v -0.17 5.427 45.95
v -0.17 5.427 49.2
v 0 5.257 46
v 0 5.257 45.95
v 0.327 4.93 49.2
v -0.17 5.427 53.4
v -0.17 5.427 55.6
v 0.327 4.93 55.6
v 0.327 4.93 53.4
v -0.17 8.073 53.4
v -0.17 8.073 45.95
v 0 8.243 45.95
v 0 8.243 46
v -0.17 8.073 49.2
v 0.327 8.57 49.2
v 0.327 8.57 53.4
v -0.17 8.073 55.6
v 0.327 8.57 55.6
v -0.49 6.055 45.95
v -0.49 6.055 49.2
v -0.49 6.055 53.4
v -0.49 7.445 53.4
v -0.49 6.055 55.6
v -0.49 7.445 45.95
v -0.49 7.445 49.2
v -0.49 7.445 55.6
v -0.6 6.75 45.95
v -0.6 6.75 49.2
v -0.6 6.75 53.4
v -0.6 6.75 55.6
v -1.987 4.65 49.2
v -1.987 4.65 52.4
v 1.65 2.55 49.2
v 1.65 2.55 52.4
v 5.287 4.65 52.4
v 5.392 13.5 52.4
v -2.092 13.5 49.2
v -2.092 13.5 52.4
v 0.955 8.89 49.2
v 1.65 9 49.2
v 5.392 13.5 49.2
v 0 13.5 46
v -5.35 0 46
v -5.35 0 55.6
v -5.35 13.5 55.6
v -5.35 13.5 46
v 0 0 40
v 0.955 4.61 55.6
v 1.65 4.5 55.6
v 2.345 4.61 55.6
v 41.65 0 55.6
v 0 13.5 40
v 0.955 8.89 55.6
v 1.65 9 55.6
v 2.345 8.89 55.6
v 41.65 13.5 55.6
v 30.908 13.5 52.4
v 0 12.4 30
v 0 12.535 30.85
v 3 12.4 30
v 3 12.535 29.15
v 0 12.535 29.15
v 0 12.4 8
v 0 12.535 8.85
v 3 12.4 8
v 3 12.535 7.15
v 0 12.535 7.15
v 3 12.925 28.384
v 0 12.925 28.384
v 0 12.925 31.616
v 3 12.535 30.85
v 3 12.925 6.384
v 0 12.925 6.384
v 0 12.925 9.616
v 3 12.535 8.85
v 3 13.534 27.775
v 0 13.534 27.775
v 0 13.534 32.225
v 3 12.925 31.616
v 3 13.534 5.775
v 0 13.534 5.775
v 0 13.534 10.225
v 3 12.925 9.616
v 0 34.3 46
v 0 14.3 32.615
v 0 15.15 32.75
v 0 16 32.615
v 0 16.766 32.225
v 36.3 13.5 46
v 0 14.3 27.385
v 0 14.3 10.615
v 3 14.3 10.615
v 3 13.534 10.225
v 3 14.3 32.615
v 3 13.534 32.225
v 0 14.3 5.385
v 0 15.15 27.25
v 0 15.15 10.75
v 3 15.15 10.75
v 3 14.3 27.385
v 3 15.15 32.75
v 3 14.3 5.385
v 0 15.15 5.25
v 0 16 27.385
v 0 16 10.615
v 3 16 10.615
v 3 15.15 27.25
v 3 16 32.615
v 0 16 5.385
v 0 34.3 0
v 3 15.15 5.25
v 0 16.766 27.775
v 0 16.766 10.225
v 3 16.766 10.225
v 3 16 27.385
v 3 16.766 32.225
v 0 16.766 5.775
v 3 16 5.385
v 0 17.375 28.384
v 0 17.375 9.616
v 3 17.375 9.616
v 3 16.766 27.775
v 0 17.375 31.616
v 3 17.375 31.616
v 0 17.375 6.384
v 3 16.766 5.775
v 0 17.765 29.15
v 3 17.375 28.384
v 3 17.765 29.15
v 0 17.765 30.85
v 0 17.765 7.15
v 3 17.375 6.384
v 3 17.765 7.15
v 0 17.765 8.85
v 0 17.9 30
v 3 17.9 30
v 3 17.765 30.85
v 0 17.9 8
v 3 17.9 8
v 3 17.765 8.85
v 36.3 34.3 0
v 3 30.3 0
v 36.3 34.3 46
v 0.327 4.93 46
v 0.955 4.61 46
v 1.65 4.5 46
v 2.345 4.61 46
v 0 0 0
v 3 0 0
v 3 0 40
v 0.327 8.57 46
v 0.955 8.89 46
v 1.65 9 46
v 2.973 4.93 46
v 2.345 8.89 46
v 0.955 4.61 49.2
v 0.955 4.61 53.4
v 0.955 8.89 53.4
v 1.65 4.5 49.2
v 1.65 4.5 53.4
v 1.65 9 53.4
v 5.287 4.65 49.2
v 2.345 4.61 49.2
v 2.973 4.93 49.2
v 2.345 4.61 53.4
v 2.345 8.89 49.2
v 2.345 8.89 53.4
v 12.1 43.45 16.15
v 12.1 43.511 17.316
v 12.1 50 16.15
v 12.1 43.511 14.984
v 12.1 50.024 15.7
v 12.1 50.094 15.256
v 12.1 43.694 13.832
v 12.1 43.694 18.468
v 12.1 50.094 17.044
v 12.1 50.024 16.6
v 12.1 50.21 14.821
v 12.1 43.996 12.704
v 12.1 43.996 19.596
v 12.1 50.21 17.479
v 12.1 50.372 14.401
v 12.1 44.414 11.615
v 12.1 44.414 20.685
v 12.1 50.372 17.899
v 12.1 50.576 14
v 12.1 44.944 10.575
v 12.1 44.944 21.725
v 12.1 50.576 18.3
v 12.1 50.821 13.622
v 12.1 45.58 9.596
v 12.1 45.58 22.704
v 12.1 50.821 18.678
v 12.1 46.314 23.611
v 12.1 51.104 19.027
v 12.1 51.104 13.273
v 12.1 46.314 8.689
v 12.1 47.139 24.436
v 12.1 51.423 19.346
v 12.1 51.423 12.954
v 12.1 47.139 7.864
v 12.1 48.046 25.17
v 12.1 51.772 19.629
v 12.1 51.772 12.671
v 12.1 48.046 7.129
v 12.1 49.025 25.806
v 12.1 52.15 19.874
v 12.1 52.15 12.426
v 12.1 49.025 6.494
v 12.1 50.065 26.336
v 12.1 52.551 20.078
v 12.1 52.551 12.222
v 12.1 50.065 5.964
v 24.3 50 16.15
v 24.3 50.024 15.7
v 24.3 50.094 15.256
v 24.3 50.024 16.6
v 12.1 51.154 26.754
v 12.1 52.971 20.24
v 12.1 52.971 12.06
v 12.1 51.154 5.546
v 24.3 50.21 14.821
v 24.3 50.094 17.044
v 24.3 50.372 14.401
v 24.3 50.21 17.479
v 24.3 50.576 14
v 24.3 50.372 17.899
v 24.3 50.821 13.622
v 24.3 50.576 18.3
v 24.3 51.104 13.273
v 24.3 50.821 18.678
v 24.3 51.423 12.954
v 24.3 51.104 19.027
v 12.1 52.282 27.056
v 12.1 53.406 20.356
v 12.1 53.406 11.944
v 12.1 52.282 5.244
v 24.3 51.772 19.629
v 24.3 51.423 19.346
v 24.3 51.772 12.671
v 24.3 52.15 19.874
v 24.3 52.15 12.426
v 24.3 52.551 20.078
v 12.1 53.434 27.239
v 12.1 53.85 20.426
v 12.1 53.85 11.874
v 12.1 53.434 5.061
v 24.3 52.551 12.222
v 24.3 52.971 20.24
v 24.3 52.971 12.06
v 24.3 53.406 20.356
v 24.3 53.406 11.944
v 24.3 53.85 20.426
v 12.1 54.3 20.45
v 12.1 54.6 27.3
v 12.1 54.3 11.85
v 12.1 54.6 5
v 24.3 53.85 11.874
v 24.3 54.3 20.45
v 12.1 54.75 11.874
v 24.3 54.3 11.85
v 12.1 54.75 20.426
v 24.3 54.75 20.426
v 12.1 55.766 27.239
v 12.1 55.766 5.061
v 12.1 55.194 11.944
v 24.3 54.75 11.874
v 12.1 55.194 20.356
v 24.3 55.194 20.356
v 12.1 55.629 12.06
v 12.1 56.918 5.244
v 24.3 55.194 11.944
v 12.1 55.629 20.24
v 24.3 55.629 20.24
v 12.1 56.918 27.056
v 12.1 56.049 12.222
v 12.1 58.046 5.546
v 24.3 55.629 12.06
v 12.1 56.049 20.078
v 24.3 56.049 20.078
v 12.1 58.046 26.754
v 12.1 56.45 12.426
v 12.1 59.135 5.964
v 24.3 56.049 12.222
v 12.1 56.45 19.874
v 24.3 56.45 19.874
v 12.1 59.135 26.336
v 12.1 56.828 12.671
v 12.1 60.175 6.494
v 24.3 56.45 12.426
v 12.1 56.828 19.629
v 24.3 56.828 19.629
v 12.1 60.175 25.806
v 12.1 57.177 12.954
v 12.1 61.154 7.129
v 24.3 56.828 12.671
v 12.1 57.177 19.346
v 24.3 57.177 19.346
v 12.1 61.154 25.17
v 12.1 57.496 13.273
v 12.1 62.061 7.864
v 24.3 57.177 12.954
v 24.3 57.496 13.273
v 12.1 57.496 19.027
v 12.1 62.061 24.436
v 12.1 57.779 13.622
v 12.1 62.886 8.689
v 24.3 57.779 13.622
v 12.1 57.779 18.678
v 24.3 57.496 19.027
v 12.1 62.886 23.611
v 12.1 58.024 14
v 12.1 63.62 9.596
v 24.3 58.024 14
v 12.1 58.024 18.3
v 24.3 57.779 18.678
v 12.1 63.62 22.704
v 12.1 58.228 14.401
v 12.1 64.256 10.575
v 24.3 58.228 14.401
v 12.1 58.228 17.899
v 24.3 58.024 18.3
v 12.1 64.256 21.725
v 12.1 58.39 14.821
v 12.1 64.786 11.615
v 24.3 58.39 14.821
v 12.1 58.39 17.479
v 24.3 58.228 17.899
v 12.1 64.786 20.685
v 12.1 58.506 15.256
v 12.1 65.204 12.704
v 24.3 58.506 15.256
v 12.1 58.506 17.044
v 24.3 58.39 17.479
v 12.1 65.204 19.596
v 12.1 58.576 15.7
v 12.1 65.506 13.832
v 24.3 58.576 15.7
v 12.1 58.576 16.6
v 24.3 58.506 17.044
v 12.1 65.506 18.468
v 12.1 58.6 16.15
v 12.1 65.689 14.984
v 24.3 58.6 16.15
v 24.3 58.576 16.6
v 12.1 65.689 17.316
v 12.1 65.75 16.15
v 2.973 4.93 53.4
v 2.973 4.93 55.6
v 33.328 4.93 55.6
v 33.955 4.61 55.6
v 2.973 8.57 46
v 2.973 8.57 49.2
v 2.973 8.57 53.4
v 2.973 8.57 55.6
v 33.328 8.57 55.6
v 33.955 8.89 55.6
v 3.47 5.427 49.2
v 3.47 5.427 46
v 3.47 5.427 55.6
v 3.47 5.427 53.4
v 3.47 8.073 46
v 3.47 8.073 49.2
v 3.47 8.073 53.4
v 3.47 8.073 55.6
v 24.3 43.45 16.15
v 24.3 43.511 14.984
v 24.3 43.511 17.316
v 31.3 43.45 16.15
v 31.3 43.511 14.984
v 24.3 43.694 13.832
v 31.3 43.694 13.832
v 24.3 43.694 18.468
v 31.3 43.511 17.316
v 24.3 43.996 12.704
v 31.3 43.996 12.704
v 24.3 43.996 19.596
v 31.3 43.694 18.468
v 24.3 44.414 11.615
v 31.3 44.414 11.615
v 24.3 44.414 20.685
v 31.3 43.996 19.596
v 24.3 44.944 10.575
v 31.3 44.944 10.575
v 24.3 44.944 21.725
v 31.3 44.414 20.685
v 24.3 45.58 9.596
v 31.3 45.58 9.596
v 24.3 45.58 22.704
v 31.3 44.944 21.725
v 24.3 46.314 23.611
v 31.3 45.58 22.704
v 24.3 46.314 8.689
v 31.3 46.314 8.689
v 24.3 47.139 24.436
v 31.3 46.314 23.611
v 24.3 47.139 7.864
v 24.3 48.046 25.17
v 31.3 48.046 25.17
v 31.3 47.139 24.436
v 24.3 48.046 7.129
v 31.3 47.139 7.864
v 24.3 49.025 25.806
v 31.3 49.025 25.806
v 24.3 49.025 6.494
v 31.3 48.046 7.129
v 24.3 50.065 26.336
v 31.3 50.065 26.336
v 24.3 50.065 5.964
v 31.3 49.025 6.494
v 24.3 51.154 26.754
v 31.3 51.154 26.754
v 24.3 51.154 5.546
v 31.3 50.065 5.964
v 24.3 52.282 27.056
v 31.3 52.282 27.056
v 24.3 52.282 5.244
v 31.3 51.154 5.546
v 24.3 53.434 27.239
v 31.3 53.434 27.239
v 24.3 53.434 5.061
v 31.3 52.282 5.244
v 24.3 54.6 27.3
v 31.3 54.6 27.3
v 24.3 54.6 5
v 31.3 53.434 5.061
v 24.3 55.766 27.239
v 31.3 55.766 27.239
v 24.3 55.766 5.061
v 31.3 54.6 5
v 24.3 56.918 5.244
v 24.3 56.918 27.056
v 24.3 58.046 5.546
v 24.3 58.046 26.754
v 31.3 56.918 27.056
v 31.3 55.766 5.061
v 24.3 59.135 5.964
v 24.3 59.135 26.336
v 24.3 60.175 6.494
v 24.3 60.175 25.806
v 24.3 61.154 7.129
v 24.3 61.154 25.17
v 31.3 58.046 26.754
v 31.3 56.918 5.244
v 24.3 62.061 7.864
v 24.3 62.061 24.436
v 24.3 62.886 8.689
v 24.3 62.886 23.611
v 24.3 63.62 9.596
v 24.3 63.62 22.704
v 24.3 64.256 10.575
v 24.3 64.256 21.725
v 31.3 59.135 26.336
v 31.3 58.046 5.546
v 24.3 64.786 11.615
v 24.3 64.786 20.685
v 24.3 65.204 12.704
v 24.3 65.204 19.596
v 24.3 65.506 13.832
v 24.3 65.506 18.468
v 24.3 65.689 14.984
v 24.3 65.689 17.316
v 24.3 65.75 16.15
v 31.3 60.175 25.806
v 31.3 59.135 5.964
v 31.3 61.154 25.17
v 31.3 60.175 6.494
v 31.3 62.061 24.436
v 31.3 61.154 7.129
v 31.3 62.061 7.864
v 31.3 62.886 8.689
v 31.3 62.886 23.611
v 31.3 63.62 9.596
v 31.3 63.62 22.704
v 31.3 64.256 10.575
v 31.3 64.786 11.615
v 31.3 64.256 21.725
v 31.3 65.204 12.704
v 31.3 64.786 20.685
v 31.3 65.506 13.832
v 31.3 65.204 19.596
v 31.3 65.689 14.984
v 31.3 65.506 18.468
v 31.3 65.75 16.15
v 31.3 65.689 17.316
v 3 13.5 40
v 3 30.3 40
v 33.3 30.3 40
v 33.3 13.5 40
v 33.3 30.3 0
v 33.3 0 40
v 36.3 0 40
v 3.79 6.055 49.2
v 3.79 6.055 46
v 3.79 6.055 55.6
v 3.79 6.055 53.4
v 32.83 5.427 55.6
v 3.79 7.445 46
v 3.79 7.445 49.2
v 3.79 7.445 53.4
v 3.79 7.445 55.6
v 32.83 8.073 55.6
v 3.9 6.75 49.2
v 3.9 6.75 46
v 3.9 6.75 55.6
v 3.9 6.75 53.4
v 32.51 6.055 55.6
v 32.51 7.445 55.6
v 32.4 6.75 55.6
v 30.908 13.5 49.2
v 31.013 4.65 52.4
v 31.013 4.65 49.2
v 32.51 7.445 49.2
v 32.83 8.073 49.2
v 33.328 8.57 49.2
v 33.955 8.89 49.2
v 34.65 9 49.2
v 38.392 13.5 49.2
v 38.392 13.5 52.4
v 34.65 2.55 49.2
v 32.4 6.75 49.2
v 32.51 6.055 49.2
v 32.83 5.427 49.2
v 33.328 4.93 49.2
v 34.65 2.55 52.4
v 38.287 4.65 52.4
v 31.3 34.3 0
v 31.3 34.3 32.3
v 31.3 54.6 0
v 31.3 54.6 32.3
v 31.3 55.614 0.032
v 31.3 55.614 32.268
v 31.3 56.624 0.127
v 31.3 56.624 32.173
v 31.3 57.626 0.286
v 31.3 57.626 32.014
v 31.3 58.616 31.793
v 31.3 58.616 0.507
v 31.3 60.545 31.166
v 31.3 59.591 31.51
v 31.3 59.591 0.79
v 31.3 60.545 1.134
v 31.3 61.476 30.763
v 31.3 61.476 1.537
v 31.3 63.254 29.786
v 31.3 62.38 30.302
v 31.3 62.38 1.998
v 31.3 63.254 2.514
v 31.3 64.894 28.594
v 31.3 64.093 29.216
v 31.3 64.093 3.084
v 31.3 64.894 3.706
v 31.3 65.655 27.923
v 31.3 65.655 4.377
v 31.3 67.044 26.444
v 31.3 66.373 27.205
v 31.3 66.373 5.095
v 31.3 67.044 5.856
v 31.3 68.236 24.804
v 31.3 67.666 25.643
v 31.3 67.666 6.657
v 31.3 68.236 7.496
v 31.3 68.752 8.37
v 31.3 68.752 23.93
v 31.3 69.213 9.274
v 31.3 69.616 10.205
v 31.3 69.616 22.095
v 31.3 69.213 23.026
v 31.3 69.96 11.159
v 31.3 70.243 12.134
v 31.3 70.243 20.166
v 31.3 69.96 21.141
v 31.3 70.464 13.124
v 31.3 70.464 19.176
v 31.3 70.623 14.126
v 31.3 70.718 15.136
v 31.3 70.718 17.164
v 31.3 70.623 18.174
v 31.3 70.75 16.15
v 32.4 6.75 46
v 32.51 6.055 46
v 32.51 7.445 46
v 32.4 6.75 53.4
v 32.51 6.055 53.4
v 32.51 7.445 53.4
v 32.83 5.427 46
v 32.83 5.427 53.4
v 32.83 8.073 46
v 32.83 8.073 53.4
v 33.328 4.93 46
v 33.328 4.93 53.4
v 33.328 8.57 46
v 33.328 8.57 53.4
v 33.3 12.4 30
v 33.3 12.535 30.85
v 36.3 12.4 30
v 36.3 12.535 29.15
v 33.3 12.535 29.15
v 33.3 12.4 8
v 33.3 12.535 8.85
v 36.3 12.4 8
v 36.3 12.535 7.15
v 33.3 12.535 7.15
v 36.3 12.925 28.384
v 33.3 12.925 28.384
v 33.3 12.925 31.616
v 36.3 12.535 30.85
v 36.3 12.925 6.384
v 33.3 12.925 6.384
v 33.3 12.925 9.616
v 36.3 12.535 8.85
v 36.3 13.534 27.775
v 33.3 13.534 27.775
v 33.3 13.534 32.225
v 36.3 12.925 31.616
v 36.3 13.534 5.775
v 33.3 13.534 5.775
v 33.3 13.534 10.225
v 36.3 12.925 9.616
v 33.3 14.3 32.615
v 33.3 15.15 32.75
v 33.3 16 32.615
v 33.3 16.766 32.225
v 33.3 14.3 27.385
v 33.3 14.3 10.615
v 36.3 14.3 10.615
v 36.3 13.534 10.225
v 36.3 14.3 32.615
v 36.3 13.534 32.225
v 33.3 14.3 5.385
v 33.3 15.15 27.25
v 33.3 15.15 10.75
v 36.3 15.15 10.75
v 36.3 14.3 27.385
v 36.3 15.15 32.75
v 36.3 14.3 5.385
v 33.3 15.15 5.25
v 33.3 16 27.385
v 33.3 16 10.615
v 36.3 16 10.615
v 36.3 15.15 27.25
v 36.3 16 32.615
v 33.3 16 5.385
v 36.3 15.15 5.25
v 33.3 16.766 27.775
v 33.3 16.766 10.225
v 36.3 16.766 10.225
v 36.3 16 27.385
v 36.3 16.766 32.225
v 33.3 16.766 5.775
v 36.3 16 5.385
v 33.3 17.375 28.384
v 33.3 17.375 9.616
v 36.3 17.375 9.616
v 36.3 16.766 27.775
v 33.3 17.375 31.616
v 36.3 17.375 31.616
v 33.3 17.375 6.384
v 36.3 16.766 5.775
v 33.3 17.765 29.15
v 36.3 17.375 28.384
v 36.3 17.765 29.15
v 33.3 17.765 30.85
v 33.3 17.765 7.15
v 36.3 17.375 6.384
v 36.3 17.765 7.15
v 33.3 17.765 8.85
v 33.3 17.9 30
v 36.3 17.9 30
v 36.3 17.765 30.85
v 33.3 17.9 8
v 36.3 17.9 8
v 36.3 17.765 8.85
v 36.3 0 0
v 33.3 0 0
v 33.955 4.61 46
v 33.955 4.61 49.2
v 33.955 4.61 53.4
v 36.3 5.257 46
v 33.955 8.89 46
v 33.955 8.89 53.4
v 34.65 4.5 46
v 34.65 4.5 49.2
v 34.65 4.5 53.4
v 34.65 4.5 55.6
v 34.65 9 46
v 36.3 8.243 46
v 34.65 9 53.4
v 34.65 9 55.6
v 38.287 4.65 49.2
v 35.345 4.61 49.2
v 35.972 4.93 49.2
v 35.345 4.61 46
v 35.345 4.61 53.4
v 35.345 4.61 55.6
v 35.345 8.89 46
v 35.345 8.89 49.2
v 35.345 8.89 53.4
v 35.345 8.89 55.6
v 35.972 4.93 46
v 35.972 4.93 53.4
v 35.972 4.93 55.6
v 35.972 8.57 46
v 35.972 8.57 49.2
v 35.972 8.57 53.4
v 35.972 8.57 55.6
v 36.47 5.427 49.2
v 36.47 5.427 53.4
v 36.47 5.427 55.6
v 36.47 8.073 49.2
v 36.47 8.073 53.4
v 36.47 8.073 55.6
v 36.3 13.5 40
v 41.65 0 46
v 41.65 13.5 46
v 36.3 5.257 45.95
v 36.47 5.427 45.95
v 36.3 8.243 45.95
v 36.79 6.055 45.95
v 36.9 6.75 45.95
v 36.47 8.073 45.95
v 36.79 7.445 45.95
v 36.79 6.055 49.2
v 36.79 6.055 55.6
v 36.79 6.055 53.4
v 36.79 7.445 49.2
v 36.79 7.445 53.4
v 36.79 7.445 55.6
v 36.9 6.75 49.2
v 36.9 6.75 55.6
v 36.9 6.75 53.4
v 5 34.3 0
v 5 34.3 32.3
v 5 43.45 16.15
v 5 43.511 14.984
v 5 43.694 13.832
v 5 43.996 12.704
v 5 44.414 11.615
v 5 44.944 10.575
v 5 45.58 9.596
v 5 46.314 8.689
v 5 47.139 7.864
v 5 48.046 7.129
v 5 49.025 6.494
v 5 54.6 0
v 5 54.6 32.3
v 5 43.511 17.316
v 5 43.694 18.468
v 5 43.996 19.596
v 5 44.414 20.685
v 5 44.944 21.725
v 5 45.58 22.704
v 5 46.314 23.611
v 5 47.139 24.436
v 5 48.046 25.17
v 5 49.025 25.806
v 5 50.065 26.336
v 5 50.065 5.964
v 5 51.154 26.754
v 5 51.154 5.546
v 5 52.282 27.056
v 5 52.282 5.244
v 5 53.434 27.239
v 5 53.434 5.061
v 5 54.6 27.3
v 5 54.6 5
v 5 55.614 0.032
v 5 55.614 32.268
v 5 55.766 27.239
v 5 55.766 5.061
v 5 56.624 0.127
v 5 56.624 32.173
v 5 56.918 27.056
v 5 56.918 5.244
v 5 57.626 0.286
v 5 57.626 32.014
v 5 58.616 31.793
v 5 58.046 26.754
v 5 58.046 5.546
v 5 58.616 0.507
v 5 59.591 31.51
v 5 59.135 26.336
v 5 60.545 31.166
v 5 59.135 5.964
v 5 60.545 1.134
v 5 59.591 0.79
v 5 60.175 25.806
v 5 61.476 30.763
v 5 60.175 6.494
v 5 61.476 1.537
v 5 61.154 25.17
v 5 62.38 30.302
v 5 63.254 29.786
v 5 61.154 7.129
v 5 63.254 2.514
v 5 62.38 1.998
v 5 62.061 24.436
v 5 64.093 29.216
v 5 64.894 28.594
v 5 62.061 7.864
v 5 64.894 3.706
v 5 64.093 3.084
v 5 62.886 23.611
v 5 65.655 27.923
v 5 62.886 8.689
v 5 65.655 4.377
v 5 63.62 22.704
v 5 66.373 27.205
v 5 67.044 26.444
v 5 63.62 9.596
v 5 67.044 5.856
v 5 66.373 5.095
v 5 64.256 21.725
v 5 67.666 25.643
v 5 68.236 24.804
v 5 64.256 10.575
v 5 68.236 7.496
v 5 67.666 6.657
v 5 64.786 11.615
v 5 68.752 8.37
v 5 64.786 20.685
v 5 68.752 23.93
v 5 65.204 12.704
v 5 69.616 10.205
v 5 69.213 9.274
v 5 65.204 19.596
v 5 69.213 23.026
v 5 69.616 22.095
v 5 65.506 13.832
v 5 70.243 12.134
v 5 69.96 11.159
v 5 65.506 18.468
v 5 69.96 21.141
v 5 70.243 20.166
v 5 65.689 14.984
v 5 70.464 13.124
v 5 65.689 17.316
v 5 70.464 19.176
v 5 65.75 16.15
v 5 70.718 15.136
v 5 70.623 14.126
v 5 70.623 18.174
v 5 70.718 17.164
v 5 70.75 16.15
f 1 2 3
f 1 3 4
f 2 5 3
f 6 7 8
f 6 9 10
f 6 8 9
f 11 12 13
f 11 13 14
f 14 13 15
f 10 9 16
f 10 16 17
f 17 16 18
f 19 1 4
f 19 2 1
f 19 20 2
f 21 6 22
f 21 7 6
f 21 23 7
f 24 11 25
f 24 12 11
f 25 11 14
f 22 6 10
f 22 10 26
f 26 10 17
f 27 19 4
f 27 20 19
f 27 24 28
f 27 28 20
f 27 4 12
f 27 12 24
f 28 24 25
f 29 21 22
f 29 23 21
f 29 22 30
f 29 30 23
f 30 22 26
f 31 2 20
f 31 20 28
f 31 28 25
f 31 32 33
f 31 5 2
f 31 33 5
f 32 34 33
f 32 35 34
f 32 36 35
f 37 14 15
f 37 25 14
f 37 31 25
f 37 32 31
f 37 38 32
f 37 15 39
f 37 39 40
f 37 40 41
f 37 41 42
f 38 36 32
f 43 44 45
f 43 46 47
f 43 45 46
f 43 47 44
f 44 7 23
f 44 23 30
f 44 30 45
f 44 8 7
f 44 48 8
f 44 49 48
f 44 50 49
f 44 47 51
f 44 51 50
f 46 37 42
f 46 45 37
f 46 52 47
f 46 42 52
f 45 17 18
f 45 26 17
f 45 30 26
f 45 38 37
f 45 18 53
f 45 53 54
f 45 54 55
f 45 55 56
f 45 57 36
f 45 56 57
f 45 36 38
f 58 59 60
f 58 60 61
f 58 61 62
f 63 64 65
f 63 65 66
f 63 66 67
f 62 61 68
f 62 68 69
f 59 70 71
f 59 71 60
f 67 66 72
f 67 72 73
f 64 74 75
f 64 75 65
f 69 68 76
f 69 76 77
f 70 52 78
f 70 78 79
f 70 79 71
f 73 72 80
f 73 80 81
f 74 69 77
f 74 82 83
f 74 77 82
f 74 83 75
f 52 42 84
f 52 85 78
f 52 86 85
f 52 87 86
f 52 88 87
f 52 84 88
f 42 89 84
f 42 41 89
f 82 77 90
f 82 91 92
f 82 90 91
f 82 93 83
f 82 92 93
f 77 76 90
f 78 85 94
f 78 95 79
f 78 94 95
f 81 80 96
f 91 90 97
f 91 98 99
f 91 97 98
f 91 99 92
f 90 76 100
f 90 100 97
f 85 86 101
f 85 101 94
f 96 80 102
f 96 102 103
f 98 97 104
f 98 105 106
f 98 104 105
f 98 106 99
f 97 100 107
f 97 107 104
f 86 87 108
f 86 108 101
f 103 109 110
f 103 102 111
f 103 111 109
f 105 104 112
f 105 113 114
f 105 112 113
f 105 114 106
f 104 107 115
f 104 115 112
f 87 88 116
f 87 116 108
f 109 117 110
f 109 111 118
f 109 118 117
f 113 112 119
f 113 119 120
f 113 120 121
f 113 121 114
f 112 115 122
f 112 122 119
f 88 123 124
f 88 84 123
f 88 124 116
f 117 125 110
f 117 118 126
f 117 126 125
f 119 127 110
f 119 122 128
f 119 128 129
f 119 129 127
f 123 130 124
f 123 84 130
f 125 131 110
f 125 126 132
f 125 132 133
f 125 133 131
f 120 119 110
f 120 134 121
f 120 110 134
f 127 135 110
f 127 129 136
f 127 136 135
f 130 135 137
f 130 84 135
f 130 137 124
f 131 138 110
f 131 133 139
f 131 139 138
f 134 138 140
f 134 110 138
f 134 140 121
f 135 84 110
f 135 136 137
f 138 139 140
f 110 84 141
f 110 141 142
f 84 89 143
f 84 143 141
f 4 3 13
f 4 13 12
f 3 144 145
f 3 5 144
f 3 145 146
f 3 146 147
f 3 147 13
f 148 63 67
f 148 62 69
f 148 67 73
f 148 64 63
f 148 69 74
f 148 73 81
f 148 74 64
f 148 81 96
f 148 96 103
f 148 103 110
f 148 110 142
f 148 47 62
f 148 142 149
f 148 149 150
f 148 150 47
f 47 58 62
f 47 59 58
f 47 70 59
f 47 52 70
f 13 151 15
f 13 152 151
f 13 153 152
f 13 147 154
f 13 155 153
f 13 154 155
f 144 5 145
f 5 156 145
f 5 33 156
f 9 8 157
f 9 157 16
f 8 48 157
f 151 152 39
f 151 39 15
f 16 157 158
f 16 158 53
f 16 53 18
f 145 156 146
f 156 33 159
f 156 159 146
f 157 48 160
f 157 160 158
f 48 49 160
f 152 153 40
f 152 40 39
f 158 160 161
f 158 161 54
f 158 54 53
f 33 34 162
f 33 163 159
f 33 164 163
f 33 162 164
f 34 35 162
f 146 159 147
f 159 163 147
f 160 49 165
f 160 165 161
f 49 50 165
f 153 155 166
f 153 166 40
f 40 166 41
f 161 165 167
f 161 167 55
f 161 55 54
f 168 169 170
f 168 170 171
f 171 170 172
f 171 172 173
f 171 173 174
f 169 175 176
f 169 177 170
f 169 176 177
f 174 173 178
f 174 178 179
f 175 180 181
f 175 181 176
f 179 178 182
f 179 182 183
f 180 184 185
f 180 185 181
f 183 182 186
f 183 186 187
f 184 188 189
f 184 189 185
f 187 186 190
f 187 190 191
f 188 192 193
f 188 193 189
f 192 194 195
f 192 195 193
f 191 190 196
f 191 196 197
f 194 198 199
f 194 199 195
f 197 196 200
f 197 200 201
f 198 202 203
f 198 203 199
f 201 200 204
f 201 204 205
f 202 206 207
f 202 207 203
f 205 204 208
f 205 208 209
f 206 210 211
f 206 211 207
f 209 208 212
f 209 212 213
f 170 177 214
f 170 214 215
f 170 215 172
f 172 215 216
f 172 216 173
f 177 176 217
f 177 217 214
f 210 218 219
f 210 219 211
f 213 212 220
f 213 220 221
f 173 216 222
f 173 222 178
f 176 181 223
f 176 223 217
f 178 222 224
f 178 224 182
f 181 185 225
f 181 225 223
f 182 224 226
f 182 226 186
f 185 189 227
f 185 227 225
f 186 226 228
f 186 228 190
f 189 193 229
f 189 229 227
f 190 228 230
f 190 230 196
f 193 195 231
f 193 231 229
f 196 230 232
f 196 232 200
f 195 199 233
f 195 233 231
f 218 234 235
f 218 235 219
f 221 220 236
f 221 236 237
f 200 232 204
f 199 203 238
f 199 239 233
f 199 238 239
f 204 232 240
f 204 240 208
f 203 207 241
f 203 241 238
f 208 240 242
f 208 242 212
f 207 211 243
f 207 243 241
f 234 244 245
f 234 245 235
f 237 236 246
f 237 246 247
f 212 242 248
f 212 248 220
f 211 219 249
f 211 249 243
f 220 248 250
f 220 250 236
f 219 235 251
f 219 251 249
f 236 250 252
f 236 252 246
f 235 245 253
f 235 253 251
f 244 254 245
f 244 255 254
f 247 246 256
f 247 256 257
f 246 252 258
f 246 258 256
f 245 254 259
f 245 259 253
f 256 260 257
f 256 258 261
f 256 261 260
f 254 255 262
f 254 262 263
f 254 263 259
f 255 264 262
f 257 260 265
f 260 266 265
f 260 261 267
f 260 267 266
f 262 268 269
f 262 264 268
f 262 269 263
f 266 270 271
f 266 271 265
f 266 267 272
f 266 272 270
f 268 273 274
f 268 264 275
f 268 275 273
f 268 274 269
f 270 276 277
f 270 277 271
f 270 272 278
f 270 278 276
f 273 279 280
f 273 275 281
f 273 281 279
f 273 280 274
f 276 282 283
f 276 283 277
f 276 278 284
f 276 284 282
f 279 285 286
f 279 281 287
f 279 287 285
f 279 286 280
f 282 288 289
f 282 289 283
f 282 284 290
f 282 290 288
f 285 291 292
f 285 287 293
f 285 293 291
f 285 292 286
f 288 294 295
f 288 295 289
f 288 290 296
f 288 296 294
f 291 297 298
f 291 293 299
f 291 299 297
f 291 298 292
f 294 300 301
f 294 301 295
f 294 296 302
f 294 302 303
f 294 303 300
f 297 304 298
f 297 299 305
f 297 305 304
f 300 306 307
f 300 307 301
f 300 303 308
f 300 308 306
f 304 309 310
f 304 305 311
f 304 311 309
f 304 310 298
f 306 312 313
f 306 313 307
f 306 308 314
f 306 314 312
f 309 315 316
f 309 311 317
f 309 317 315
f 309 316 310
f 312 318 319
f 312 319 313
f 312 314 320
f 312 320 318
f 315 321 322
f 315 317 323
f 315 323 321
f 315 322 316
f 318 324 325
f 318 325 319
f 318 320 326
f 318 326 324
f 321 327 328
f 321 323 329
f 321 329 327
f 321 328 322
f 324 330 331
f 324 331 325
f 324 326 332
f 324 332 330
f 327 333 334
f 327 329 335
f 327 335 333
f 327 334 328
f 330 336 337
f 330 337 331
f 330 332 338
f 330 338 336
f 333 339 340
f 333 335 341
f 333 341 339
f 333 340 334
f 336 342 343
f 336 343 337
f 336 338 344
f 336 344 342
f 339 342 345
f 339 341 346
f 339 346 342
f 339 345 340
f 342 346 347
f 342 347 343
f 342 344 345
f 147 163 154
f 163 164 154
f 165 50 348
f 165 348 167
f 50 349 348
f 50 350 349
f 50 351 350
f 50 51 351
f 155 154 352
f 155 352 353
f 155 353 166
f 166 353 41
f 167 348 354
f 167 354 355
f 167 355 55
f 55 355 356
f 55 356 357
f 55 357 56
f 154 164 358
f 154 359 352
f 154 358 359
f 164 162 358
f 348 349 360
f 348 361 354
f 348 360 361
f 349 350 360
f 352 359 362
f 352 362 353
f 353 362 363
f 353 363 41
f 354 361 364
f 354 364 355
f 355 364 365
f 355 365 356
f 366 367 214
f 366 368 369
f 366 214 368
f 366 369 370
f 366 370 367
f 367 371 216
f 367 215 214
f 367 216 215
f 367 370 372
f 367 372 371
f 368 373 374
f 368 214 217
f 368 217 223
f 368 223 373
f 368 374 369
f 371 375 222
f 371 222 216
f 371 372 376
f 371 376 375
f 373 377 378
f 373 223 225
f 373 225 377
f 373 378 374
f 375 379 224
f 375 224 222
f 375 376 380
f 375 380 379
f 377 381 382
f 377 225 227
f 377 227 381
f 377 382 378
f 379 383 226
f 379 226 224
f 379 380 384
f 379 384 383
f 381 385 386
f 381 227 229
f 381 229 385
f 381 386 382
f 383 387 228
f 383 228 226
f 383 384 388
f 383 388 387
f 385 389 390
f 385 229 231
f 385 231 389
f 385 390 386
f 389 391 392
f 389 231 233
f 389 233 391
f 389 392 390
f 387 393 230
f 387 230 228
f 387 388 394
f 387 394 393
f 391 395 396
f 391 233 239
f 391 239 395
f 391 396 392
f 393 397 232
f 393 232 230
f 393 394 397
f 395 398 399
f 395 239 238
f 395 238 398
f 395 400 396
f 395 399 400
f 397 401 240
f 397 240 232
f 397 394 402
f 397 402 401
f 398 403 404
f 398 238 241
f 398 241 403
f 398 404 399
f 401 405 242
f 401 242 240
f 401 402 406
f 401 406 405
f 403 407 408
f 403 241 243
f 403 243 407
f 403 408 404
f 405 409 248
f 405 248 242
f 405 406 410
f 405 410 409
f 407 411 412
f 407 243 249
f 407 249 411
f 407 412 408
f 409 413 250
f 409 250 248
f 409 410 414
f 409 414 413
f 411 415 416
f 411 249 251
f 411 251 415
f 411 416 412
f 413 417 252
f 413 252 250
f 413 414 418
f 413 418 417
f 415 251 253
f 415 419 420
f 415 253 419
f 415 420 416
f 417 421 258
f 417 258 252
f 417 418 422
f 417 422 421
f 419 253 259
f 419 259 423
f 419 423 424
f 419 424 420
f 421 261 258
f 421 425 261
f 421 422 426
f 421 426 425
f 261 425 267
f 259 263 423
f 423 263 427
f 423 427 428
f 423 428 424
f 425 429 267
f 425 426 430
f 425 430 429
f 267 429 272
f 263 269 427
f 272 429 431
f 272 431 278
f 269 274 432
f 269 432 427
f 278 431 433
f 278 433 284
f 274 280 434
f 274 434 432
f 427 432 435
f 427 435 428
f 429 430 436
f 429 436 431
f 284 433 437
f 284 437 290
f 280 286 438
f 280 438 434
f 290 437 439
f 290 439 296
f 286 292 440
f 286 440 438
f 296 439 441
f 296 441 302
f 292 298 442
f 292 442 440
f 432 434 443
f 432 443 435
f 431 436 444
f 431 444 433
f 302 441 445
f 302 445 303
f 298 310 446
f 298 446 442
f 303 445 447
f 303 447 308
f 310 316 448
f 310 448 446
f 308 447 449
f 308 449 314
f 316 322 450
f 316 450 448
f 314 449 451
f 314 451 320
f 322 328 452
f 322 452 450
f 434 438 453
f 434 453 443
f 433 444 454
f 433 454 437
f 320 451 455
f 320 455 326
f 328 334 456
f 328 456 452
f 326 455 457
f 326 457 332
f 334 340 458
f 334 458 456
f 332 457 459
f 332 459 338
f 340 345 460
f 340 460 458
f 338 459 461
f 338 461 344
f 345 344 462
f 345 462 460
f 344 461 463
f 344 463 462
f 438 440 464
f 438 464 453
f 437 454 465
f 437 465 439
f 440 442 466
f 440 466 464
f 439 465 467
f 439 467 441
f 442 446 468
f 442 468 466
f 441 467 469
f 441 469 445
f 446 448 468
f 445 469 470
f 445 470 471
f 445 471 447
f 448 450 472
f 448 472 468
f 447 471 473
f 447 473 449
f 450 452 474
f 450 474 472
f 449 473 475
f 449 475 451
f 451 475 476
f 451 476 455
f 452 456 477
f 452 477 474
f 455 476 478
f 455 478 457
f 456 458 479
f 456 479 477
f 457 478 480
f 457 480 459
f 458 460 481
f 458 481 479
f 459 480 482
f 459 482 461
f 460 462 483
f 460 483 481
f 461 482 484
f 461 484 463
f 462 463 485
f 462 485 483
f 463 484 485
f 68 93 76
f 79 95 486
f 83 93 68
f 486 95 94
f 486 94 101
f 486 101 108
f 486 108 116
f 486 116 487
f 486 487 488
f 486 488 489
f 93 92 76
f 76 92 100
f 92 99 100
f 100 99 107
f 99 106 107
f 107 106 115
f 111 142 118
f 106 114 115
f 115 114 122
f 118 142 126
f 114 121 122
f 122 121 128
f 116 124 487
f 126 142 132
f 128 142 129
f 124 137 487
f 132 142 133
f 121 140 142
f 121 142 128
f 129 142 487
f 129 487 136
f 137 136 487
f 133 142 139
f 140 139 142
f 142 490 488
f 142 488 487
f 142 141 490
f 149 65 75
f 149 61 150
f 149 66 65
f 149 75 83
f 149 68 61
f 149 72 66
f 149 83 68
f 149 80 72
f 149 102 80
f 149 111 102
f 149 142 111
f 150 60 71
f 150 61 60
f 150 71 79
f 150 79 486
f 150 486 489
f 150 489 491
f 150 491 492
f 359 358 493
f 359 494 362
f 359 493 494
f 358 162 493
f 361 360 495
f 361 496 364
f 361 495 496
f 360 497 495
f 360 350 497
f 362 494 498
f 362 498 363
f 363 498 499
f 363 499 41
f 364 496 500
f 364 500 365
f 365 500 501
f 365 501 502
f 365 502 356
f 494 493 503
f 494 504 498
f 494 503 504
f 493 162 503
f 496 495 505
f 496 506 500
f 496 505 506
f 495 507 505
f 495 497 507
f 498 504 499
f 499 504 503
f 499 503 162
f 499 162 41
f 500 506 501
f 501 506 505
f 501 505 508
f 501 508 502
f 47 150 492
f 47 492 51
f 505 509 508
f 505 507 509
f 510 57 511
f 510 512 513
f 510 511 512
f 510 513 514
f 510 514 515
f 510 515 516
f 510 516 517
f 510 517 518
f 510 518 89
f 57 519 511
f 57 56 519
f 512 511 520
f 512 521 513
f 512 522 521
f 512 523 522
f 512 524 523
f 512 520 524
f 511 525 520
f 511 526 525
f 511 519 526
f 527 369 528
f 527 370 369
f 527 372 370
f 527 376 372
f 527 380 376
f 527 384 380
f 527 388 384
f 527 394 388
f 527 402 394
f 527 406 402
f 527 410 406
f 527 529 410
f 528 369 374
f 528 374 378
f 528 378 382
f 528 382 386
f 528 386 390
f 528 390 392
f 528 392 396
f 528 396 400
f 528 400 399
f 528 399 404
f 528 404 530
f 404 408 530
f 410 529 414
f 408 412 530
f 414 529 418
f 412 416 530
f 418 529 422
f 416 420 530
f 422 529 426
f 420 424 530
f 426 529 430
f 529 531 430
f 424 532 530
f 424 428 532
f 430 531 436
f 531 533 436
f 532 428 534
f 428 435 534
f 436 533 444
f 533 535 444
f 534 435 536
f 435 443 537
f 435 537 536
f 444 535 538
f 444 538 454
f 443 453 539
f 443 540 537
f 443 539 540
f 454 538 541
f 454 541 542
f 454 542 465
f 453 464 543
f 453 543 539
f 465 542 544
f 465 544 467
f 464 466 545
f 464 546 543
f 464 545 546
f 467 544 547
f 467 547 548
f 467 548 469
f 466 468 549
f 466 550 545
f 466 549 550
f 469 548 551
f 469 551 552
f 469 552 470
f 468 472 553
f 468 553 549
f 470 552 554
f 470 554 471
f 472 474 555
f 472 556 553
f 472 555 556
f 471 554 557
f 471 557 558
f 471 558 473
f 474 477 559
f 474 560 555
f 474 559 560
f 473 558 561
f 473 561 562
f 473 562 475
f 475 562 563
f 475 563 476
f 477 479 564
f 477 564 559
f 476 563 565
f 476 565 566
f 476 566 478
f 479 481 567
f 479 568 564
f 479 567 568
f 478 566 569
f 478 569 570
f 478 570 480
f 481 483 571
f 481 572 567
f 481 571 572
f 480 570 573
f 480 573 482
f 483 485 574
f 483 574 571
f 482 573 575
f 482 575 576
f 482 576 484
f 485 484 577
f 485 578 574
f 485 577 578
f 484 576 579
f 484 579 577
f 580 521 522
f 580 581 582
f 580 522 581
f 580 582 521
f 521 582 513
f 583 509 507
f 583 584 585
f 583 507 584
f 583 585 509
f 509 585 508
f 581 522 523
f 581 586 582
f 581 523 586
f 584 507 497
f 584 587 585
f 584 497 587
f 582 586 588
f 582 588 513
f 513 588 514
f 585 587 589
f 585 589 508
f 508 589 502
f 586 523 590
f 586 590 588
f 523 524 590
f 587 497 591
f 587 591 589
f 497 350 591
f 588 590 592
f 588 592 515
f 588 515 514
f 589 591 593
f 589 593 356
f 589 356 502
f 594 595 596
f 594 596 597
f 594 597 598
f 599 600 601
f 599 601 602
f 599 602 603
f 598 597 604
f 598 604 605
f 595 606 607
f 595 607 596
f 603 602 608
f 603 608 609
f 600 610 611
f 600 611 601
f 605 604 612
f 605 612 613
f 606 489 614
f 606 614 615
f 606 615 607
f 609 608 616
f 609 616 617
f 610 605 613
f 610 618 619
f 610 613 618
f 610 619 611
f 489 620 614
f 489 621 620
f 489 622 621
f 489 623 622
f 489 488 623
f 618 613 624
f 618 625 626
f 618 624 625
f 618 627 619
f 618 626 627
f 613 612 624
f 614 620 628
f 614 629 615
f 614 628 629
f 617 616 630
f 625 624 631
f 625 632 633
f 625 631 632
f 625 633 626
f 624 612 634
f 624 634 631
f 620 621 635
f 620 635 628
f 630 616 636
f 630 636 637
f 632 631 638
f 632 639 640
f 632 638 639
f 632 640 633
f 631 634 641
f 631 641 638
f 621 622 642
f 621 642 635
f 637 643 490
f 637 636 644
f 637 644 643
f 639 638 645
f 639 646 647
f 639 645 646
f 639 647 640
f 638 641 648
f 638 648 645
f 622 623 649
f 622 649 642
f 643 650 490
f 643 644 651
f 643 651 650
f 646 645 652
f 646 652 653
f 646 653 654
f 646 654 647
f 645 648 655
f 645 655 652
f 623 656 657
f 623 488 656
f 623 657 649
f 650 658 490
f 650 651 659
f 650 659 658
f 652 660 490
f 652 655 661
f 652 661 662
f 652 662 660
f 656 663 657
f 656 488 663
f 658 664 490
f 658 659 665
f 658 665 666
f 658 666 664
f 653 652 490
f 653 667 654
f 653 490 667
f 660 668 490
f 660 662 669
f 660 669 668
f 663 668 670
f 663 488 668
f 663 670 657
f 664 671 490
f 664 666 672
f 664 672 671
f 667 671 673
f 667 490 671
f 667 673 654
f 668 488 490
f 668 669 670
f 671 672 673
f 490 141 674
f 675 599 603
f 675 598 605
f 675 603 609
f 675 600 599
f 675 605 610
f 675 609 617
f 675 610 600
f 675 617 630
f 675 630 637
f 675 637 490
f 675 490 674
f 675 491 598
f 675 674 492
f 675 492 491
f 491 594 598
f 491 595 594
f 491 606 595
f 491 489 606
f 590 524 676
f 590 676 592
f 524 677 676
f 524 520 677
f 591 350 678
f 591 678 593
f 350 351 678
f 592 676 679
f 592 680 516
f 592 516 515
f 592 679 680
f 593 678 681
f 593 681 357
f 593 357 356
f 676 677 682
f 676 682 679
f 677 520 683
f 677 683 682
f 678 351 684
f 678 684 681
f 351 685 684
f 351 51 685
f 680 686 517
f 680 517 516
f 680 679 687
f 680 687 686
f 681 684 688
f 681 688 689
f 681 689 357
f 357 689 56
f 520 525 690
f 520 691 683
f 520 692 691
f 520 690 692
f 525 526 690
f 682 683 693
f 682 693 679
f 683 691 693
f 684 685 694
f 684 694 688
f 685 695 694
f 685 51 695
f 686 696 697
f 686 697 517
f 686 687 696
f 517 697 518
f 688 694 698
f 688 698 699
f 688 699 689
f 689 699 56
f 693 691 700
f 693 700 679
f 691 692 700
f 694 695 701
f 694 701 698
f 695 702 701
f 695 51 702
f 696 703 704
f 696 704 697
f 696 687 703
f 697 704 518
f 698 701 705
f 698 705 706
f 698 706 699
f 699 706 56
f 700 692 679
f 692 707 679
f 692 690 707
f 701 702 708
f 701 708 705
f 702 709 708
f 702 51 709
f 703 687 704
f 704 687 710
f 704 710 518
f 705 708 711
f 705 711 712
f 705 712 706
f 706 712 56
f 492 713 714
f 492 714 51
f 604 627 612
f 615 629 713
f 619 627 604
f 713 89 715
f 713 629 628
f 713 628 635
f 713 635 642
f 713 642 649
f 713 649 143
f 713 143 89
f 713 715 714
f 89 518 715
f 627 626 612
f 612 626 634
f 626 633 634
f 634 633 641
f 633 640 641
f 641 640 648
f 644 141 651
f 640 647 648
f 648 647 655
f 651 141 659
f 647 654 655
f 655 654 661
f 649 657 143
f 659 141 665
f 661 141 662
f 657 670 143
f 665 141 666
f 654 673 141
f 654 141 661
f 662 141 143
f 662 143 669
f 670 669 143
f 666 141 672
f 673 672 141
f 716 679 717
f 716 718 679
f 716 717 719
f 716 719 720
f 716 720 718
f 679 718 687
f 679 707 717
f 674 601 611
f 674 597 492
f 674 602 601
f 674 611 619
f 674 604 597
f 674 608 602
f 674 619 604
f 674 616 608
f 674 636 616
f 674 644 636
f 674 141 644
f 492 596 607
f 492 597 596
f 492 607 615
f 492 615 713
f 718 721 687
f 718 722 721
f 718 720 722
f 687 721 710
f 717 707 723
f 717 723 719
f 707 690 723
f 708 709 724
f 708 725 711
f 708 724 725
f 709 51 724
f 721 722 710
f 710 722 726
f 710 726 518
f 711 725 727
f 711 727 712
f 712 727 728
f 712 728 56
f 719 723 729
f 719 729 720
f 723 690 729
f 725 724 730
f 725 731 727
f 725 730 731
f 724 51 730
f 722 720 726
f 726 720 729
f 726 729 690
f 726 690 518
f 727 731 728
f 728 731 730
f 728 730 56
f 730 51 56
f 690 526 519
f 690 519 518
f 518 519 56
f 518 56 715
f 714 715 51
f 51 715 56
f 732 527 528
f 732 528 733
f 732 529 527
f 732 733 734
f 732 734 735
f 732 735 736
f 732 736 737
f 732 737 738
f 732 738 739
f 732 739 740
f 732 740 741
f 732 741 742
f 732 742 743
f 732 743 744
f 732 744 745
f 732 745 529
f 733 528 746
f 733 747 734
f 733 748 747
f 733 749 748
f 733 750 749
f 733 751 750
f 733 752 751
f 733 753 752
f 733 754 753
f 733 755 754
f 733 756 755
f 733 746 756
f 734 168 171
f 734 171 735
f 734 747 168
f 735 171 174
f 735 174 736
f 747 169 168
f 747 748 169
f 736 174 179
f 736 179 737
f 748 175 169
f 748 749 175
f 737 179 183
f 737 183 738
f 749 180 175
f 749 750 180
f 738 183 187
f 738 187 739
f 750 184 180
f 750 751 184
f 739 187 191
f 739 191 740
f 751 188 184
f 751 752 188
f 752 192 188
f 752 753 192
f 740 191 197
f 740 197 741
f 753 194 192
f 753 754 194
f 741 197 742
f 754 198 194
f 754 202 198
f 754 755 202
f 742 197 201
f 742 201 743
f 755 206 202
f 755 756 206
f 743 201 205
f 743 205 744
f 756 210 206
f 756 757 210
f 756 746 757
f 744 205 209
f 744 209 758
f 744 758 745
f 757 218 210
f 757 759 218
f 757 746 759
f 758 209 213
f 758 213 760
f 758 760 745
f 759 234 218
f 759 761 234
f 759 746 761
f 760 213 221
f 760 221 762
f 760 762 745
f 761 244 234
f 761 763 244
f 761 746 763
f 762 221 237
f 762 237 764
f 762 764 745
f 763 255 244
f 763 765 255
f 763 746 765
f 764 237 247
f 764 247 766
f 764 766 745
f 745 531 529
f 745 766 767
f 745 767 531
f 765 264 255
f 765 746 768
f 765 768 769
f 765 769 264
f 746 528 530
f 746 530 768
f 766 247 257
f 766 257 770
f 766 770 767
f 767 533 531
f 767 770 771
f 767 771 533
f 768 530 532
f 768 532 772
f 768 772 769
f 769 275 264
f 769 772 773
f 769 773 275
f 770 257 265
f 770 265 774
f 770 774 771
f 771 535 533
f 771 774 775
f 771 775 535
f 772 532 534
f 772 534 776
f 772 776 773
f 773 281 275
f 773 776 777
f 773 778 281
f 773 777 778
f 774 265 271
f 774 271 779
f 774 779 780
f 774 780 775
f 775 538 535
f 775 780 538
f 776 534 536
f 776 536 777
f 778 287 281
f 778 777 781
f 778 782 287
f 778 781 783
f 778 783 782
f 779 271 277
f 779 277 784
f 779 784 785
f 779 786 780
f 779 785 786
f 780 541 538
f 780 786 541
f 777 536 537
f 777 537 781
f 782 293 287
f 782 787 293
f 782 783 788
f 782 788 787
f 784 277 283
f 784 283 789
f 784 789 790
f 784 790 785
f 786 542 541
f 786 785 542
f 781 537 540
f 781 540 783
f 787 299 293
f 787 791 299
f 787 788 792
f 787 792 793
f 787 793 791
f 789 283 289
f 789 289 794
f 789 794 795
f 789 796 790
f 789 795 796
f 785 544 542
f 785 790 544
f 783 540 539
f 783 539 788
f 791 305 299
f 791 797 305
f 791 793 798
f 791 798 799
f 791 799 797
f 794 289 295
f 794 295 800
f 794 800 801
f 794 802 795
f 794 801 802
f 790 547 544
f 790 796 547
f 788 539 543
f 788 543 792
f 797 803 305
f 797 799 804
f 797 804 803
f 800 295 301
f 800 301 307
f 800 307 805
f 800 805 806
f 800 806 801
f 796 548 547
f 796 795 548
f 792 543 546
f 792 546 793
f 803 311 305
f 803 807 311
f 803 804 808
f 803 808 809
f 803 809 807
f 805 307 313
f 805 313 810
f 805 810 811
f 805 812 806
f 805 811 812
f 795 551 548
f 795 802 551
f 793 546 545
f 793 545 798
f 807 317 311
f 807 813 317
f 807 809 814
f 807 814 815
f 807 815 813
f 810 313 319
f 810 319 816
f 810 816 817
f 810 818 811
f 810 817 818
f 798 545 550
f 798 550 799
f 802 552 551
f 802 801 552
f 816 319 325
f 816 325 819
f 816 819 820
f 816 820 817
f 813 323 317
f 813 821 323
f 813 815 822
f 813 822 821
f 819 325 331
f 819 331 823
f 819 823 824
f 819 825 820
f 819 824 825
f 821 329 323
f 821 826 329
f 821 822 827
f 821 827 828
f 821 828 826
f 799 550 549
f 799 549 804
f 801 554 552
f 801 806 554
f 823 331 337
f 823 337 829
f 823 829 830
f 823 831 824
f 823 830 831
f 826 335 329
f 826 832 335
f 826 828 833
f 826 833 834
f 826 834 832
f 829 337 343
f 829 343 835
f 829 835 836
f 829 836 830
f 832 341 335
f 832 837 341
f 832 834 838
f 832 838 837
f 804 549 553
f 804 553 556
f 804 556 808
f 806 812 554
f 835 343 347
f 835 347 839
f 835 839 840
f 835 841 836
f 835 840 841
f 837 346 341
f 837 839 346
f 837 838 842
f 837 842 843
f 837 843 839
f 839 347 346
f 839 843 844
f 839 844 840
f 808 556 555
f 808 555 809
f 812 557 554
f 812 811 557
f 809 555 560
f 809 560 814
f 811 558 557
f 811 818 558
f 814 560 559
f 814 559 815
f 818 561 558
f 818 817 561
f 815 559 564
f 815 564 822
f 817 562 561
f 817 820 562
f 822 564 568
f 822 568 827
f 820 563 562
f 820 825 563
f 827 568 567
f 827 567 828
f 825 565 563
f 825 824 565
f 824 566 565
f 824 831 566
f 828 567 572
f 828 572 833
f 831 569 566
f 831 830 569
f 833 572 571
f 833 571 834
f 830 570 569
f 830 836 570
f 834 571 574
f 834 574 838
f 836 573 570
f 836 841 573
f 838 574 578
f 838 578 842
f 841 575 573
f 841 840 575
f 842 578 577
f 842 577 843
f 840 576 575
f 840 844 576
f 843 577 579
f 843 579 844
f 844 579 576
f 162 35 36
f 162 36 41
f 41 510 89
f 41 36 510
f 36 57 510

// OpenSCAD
// file: ../lib/ALU_joint_A.scad
include <../../parameters.scad>

module ALU_joint_A(width) {
    difference() {
        hull() {
            cube([width, 10, 608_bearing_outer_diameter+10]);
            translate([0, 608_bearing_outer_diameter-2, (608_bearing_outer_diameter+10)/2])
                rotate([0, 90, 0])
                    cylinder(d=608_bearing_outer_diameter+10, h=width, $fn=100);
        }
        
        translate([-0.1, 608_bearing_outer_diameter-2, (608_bearing_outer_diameter+10)/2])
                rotate([0, 90, 0])
                    cylinder(d=608_bearing_outer_diameter, h=608_bearing_thickness+0.1, $fn=60);

        translate([width-608_bearing_thickness+0.1, 608_bearing_outer_diameter-2, (608_bearing_outer_diameter+10)/2])
                rotate([0, 90, 0])
                    cylinder(d=608_bearing_outer_diameter, h=608_bearing_thickness+0.1, $fn=60);
        
        translate([0, 20, (608_bearing_outer_diameter+10)/2])
                rotate([0, 90, 0])
                    cylinder(d=M8_screw_diameter, h=width, $fn=60);
    }
}

ALU_joint_A(20);
// file: ../lib/ALU_profile_holder_top.scad
include <../../parameters.scad>



module ALU_profile_holder_top(deep=35) {
    wall_thickness = ALU_profile_holder_wall_thickness;
    
    module screw_holes() {
        translate([wall_thickness/2, 8, ALU_profile_width/2]) {
            rotate([0, 90, 0]) 
                cylinder(d=M5_screw_diameter, h=wall_thickness*2, center=true, $fn=20);
        }
        translate([wall_thickness/2, deep-10, ALU_profile_width/2]) {
                rotate([0, 90, 0])
                cylinder(d=M5_screw_diameter, h=wall_thickness*2, center=true, $fn=20);
            
        }
    }
    
    difference() {
        cube([ALU_profile_width+wall_thickness*2, deep+wall_thickness*2, ALU_profile_width]);
        translate([wall_thickness, -0.1, -0.1])
            cube([ALU_profile_width, deep+0.1, ALU_profile_width+0.2]);
        
        screw_holes();
        translate([ALU_profile_width+wall_thickness, 0, 0])
            screw_holes();
    }
}

ALU_profile_holder_top(35);
// file: ../../parameters.scad
maximum_printable_size = 150;

layer_thickness = 0.3;
global_clearance = 0.5;

platform_base_diameter = 400; // Průměr ukotvení válců spodní platformy
platform_base_thickness = 20;
platform_cylinder_medium_length = 250;  // délka pneumatického válce s pístem vysunutým do poloviny rozsahu
platform_base_cylinder_spacing = 38;    //rozestupy spodního a horního ukotvení válců.
platform_top_cylinder_spacing = 30;
platform_top_diameter = 150;   // Průměr horní základny (vdálenost od středu základny do středu kulového kloubu ke kterému je uchycen pneumatický válec)


// screw length step - minimum difference in length between two types of screws
basic_screw_length = 5;


//Screw diameter and nut for M10 [mm]
M10_screw_diameter = 10.4;
M10_head_height = 10;
M10_head_diameter = 16+0.5;
M10_nut_height = 10.5;
M10_nut_diameter = 25.5;
M10_nut_pocket = 22.3;

//Screw diameter for M8 [mm]
M8_screw_diameter = 8.6;
M8_head_height = 8;
M8_head_diameter = 13.5;
M8_nut_height = 7.5;
M8_nut_diameter = 14.4 + 0.5;
M8_nut_pocket = 13 + 0.5;
M8_washer_diameter = 16;
M8_washer_thickness = 1.5;


//Screw diameter and nut for M6 [mm]
M6_screw_diameter=6.5;
M6_head_diameter = 10+0.5;
M6_head_height = 6;
M6_nut_height = 4.9;
M6_nut_diameter = 11.8;
M6_nut_pocket = 10.4;
M6_square_nut_height = 3;
M6_square_nut_diameter = 10;

//Screw diameter and nut for M5 [mm]
M5_screw_diameter=5.5;
M5_head_height = 5;
M5_head_diameter = 13+0.5;
M5_nut_height = 4.5;
M5_nut_diameter = 9.4;
M5_nut_pocket = 8.4;

//Screw diameter and nut for M4 [mm]
M4_screw_diameter=4.5;
M4_screw_head_height = 4;
M4_nut_height = 3.2;
M4_nut_diameter = 8.4;
M4_nut_pocket = 7.5;

//Screw diameter and nut for M3 [mm]
M3_screw_diameter = 3.2;
M3_nut_height = 2.7;
M3_nut_diameter = 6.6;
M3_screw_head_height = 3;

//Screw diameter and nut for M2,5 [mm]
M2_5_screw_diameter = 2.7;
M2_5_nut_height = 2.3;
M2_5_nut_diameter = 6;
M2_5_nut_pocket = 5.5;

// kulove lozisko

bearing_efsm_08_h = 33+1;
bearing_efsm_08_m = 22;
bearing_efsm_08_db = 18;
bearing_efsm_08_ag = 10.5;
bearing_efsm_08_n = M4_screw_diameter;
bearing_efsm_08_a1 = 5.5;
bearing_efsm_08_d = 8.25;
bearing_efsm_08_B = 8; // ball height

bearing_efsm_10_h = 38+1;
bearing_efsm_10_m = 26;
bearing_efsm_10_db = 21.9;
bearing_efsm_10_ag = 12+0.2;
bearing_efsm_10_n = M5_screw_diameter;
bearing_efsm_10_a1 = 6.5;
bearing_efsm_10_d = 10.25;


bearing_efsm_12_width = 40+1;
bearing_efsm_12_h = bearing_efsm_12_width;
bearing_efsm_12_boltd = 28/2; // polovina vzdalenosti mezi srouby
bearing_efsm_12_m = bearing_efsm_12_boltd*2;
bearing_efsm_12_db = 25;
bearing_efsm_12_ag = 13;
bearing_efsm_12_a1 = 7;
bearing_efsm_12_n = M5_screw_diameter;
bearing_efsm_12_d = 12.15;
bearing_efsm_12_B = 10; // ball height
bearing_efsm_space = 1;

bearing_efsm_17_width = 54+1;
bearing_efsm_17_h = bearing_efsm_17_width;
bearing_efsm_17_boltd = 38/2; // polovina vzdalenosti mezi srouby
bearing_efsm_17_m = bearing_efsm_17_boltd*2;
bearing_efsm_17_db = 35;
bearing_efsm_17_ag = 18;
bearing_efsm_17_n = M6_screw_diameter;
bearing_efsm_17_a1 = 10;
bearing_efsm_17_B = 17; // ball height

//limcove lozisko
bearing_EFOM_10_L=26; //celkova sirka zakladny
bearing_EFOM_10_d1=10.3;//diametr otvoru real=10 mm
bearing_EFOM_10_dB=22;//diametr vystupku pro ulozeni lozika
bearing_EFOM_10_H=52;//celková delka zakladny
bearing_EFOM_10_J=36;// hole pitch
bearing_EFOM_10_A1=6.5;//vyska pouzdra
bearing_EFOM_10_Ag=12;//celkova vyska
bearing_EFOM_10_N1=5;//sirka otvoru pro sroub
bearing_EFOM_10_N2=8;//delka otvoru pro sroub
bearing_EFOM_10_m=36;//roztec der pro sroub
bearing_EFOM_10_h=9;//vyska lozika


608_bearing_outer_diameter = 22.3;
608_bearing_inner_diameter = 16;
608_bearing_thickness = 7.1;


// 20 KG servo parameters

servo_20kg_axis_offset = 9.375; // jak je osa mimo stredu
servo_20kg_body_x = 42;
servo_20kg_body_y = 21;
servo_20kg_body_z = 40;
servo_20kg_thread_x = 49/2;
servo_20kg_thread_y = 10/2;
servo_20kg_body_below = 10; // jak hluboko je tělo serva pod drzaky na srouby
servo_20kg_below = 25.8; // jak hluboko je páka serva pod drzaky na srouby

servo_20kg_bolt_d = 2.5+0.3;
servo_20kg_nut_d = 5+0.3;


//strain gauge
strain_gauge_width = 12.7;
strain_gauge_length = 75.1;
strain_gauge_screw_distance = 10;

//ALU profile
ALU_profile_width = 30.3;
ALU_profile_holder_wall_thickness = 3;
ALU_profile_groove_width = 8;

//pillow block bearing
//https://www.igus.eu/product/372
//Part no. KSTM-08
KSTM08_screws_distance = 33;         //m
KSTM08_screws_holes_diameter = 4.5;  //d2
KSTM08_flange_thickness = 6;         //h3
KSTM08_case_width = 9;               //C1
KSTM08_case_length = 47;             //a
KSTM08_ball_width = 12;              //B


//ložiska pro malý rotor
bearing_outer_diameter = 10.2;    // Rozměr B1 v nákresu s přídavkem na toleranci otvoru
bearing_thickness = 4;        // Rozměr B2 v nákresu
//bearing_shaft_length = 19.5;    // Rozměr B3 v nákresu, Originalni hodnota 19.5
bearing_shaft_length = 20;    // Rozměr B3 v nákresu


//parametry víčka s telemetrickou anténou
S01_sila_materialu=1.2;
S01_vyska_horni_zavit=10;
S01_hloubka_zavitu=4;
S01_prumer_vnitrni=50;
LO_spodni_prumer=17.2;
LO_vyska_bez_krytu=15;
S01_tolerance_zavit=1.5;
R01_vyska_prekryti_statoru=10;
// main file
include <../../parameters.scad>
use <../lib/ALU_profile_holder_top.scad>
use <../lib/ALU_joint_A.scad>

module 888_5007() {
    height = 40;

    module KSTM08_holder() {
        module nut_hole() {
            hull() {
                rotate([0, 0, 30])
                    cylinder(d=M4_nut_diameter, h=M4_nut_height, $fn=6, center=true);
                translate([0, KSTM08_case_width, 0])
                    cube([M4_nut_pocket, M4_nut_height, M4_nut_height], center=true);
            }
        }

        difference() {
            hull() {
                translate([0, 0, 0.5])
                    cube([ALU_profile_width+ALU_profile_holder_wall_thickness*2, KSTM08_case_width*1.5, 1], center=true);
                translate([0, 0, M4_nut_height*3/2+ALU_profile_holder_wall_thickness*2])
                    cube([KSTM08_case_length, KSTM08_case_width*1.5, M4_nut_height*3], center=true);
            }
            difference() {
                translate([KSTM08_screws_distance/2, 0, M4_nut_height*3/2+ALU_profile_holder_wall_thickness*2])
                    cylinder(d=M4_screw_diameter, h=M4_nut_height*3+0.1, $fn=20, center=true);
                translate([KSTM08_screws_distance/2, 0, M4_nut_height*3/2+ALU_profile_holder_wall_thickness*2+M4_nut_height/2])
                    cylinder(d=M4_screw_diameter, h=1, $fn=20);
            }
            difference() {
                translate([-KSTM08_screws_distance/2, 0, M4_nut_height*3/2+ALU_profile_holder_wall_thickness*2])
                    cylinder(d=M4_screw_diameter, h=M4_nut_height*3+0.1, $fn=20, center=true);
                translate([-KSTM08_screws_distance/2, 0, M4_nut_height*3/2+ALU_profile_holder_wall_thickness*2+M4_nut_height/2])
                    cylinder(d=M4_screw_diameter, h=1, $fn=20);
            }

            translate([KSTM08_screws_distance/2, 0, M4_nut_height*3/2+ALU_profile_holder_wall_thickness*2])
                nut_hole();
            translate([-KSTM08_screws_distance/2, 0, M4_nut_height*3/2+ALU_profile_holder_wall_thickness*2])
                nut_hole();
        }
    }

    translate([0, ALU_profile_width, 0])
        rotate([90, 0, 0])
            ALU_profile_holder_top(height);

    translate([5, ALU_profile_width+4, 0])
        ALU_joint_A(ALU_profile_width+ALU_profile_holder_wall_thickness*2-10);

    translate([0, ALU_profile_width, 0])
        cube([ALU_profile_width+ALU_profile_holder_wall_thickness*2, 4, height+ALU_profile_holder_wall_thickness*2]);

    translate([ALU_profile_width/2+ALU_profile_holder_wall_thickness, KSTM08_case_width*1.5/2, height])
        KSTM08_holder();
}

888_5007();
